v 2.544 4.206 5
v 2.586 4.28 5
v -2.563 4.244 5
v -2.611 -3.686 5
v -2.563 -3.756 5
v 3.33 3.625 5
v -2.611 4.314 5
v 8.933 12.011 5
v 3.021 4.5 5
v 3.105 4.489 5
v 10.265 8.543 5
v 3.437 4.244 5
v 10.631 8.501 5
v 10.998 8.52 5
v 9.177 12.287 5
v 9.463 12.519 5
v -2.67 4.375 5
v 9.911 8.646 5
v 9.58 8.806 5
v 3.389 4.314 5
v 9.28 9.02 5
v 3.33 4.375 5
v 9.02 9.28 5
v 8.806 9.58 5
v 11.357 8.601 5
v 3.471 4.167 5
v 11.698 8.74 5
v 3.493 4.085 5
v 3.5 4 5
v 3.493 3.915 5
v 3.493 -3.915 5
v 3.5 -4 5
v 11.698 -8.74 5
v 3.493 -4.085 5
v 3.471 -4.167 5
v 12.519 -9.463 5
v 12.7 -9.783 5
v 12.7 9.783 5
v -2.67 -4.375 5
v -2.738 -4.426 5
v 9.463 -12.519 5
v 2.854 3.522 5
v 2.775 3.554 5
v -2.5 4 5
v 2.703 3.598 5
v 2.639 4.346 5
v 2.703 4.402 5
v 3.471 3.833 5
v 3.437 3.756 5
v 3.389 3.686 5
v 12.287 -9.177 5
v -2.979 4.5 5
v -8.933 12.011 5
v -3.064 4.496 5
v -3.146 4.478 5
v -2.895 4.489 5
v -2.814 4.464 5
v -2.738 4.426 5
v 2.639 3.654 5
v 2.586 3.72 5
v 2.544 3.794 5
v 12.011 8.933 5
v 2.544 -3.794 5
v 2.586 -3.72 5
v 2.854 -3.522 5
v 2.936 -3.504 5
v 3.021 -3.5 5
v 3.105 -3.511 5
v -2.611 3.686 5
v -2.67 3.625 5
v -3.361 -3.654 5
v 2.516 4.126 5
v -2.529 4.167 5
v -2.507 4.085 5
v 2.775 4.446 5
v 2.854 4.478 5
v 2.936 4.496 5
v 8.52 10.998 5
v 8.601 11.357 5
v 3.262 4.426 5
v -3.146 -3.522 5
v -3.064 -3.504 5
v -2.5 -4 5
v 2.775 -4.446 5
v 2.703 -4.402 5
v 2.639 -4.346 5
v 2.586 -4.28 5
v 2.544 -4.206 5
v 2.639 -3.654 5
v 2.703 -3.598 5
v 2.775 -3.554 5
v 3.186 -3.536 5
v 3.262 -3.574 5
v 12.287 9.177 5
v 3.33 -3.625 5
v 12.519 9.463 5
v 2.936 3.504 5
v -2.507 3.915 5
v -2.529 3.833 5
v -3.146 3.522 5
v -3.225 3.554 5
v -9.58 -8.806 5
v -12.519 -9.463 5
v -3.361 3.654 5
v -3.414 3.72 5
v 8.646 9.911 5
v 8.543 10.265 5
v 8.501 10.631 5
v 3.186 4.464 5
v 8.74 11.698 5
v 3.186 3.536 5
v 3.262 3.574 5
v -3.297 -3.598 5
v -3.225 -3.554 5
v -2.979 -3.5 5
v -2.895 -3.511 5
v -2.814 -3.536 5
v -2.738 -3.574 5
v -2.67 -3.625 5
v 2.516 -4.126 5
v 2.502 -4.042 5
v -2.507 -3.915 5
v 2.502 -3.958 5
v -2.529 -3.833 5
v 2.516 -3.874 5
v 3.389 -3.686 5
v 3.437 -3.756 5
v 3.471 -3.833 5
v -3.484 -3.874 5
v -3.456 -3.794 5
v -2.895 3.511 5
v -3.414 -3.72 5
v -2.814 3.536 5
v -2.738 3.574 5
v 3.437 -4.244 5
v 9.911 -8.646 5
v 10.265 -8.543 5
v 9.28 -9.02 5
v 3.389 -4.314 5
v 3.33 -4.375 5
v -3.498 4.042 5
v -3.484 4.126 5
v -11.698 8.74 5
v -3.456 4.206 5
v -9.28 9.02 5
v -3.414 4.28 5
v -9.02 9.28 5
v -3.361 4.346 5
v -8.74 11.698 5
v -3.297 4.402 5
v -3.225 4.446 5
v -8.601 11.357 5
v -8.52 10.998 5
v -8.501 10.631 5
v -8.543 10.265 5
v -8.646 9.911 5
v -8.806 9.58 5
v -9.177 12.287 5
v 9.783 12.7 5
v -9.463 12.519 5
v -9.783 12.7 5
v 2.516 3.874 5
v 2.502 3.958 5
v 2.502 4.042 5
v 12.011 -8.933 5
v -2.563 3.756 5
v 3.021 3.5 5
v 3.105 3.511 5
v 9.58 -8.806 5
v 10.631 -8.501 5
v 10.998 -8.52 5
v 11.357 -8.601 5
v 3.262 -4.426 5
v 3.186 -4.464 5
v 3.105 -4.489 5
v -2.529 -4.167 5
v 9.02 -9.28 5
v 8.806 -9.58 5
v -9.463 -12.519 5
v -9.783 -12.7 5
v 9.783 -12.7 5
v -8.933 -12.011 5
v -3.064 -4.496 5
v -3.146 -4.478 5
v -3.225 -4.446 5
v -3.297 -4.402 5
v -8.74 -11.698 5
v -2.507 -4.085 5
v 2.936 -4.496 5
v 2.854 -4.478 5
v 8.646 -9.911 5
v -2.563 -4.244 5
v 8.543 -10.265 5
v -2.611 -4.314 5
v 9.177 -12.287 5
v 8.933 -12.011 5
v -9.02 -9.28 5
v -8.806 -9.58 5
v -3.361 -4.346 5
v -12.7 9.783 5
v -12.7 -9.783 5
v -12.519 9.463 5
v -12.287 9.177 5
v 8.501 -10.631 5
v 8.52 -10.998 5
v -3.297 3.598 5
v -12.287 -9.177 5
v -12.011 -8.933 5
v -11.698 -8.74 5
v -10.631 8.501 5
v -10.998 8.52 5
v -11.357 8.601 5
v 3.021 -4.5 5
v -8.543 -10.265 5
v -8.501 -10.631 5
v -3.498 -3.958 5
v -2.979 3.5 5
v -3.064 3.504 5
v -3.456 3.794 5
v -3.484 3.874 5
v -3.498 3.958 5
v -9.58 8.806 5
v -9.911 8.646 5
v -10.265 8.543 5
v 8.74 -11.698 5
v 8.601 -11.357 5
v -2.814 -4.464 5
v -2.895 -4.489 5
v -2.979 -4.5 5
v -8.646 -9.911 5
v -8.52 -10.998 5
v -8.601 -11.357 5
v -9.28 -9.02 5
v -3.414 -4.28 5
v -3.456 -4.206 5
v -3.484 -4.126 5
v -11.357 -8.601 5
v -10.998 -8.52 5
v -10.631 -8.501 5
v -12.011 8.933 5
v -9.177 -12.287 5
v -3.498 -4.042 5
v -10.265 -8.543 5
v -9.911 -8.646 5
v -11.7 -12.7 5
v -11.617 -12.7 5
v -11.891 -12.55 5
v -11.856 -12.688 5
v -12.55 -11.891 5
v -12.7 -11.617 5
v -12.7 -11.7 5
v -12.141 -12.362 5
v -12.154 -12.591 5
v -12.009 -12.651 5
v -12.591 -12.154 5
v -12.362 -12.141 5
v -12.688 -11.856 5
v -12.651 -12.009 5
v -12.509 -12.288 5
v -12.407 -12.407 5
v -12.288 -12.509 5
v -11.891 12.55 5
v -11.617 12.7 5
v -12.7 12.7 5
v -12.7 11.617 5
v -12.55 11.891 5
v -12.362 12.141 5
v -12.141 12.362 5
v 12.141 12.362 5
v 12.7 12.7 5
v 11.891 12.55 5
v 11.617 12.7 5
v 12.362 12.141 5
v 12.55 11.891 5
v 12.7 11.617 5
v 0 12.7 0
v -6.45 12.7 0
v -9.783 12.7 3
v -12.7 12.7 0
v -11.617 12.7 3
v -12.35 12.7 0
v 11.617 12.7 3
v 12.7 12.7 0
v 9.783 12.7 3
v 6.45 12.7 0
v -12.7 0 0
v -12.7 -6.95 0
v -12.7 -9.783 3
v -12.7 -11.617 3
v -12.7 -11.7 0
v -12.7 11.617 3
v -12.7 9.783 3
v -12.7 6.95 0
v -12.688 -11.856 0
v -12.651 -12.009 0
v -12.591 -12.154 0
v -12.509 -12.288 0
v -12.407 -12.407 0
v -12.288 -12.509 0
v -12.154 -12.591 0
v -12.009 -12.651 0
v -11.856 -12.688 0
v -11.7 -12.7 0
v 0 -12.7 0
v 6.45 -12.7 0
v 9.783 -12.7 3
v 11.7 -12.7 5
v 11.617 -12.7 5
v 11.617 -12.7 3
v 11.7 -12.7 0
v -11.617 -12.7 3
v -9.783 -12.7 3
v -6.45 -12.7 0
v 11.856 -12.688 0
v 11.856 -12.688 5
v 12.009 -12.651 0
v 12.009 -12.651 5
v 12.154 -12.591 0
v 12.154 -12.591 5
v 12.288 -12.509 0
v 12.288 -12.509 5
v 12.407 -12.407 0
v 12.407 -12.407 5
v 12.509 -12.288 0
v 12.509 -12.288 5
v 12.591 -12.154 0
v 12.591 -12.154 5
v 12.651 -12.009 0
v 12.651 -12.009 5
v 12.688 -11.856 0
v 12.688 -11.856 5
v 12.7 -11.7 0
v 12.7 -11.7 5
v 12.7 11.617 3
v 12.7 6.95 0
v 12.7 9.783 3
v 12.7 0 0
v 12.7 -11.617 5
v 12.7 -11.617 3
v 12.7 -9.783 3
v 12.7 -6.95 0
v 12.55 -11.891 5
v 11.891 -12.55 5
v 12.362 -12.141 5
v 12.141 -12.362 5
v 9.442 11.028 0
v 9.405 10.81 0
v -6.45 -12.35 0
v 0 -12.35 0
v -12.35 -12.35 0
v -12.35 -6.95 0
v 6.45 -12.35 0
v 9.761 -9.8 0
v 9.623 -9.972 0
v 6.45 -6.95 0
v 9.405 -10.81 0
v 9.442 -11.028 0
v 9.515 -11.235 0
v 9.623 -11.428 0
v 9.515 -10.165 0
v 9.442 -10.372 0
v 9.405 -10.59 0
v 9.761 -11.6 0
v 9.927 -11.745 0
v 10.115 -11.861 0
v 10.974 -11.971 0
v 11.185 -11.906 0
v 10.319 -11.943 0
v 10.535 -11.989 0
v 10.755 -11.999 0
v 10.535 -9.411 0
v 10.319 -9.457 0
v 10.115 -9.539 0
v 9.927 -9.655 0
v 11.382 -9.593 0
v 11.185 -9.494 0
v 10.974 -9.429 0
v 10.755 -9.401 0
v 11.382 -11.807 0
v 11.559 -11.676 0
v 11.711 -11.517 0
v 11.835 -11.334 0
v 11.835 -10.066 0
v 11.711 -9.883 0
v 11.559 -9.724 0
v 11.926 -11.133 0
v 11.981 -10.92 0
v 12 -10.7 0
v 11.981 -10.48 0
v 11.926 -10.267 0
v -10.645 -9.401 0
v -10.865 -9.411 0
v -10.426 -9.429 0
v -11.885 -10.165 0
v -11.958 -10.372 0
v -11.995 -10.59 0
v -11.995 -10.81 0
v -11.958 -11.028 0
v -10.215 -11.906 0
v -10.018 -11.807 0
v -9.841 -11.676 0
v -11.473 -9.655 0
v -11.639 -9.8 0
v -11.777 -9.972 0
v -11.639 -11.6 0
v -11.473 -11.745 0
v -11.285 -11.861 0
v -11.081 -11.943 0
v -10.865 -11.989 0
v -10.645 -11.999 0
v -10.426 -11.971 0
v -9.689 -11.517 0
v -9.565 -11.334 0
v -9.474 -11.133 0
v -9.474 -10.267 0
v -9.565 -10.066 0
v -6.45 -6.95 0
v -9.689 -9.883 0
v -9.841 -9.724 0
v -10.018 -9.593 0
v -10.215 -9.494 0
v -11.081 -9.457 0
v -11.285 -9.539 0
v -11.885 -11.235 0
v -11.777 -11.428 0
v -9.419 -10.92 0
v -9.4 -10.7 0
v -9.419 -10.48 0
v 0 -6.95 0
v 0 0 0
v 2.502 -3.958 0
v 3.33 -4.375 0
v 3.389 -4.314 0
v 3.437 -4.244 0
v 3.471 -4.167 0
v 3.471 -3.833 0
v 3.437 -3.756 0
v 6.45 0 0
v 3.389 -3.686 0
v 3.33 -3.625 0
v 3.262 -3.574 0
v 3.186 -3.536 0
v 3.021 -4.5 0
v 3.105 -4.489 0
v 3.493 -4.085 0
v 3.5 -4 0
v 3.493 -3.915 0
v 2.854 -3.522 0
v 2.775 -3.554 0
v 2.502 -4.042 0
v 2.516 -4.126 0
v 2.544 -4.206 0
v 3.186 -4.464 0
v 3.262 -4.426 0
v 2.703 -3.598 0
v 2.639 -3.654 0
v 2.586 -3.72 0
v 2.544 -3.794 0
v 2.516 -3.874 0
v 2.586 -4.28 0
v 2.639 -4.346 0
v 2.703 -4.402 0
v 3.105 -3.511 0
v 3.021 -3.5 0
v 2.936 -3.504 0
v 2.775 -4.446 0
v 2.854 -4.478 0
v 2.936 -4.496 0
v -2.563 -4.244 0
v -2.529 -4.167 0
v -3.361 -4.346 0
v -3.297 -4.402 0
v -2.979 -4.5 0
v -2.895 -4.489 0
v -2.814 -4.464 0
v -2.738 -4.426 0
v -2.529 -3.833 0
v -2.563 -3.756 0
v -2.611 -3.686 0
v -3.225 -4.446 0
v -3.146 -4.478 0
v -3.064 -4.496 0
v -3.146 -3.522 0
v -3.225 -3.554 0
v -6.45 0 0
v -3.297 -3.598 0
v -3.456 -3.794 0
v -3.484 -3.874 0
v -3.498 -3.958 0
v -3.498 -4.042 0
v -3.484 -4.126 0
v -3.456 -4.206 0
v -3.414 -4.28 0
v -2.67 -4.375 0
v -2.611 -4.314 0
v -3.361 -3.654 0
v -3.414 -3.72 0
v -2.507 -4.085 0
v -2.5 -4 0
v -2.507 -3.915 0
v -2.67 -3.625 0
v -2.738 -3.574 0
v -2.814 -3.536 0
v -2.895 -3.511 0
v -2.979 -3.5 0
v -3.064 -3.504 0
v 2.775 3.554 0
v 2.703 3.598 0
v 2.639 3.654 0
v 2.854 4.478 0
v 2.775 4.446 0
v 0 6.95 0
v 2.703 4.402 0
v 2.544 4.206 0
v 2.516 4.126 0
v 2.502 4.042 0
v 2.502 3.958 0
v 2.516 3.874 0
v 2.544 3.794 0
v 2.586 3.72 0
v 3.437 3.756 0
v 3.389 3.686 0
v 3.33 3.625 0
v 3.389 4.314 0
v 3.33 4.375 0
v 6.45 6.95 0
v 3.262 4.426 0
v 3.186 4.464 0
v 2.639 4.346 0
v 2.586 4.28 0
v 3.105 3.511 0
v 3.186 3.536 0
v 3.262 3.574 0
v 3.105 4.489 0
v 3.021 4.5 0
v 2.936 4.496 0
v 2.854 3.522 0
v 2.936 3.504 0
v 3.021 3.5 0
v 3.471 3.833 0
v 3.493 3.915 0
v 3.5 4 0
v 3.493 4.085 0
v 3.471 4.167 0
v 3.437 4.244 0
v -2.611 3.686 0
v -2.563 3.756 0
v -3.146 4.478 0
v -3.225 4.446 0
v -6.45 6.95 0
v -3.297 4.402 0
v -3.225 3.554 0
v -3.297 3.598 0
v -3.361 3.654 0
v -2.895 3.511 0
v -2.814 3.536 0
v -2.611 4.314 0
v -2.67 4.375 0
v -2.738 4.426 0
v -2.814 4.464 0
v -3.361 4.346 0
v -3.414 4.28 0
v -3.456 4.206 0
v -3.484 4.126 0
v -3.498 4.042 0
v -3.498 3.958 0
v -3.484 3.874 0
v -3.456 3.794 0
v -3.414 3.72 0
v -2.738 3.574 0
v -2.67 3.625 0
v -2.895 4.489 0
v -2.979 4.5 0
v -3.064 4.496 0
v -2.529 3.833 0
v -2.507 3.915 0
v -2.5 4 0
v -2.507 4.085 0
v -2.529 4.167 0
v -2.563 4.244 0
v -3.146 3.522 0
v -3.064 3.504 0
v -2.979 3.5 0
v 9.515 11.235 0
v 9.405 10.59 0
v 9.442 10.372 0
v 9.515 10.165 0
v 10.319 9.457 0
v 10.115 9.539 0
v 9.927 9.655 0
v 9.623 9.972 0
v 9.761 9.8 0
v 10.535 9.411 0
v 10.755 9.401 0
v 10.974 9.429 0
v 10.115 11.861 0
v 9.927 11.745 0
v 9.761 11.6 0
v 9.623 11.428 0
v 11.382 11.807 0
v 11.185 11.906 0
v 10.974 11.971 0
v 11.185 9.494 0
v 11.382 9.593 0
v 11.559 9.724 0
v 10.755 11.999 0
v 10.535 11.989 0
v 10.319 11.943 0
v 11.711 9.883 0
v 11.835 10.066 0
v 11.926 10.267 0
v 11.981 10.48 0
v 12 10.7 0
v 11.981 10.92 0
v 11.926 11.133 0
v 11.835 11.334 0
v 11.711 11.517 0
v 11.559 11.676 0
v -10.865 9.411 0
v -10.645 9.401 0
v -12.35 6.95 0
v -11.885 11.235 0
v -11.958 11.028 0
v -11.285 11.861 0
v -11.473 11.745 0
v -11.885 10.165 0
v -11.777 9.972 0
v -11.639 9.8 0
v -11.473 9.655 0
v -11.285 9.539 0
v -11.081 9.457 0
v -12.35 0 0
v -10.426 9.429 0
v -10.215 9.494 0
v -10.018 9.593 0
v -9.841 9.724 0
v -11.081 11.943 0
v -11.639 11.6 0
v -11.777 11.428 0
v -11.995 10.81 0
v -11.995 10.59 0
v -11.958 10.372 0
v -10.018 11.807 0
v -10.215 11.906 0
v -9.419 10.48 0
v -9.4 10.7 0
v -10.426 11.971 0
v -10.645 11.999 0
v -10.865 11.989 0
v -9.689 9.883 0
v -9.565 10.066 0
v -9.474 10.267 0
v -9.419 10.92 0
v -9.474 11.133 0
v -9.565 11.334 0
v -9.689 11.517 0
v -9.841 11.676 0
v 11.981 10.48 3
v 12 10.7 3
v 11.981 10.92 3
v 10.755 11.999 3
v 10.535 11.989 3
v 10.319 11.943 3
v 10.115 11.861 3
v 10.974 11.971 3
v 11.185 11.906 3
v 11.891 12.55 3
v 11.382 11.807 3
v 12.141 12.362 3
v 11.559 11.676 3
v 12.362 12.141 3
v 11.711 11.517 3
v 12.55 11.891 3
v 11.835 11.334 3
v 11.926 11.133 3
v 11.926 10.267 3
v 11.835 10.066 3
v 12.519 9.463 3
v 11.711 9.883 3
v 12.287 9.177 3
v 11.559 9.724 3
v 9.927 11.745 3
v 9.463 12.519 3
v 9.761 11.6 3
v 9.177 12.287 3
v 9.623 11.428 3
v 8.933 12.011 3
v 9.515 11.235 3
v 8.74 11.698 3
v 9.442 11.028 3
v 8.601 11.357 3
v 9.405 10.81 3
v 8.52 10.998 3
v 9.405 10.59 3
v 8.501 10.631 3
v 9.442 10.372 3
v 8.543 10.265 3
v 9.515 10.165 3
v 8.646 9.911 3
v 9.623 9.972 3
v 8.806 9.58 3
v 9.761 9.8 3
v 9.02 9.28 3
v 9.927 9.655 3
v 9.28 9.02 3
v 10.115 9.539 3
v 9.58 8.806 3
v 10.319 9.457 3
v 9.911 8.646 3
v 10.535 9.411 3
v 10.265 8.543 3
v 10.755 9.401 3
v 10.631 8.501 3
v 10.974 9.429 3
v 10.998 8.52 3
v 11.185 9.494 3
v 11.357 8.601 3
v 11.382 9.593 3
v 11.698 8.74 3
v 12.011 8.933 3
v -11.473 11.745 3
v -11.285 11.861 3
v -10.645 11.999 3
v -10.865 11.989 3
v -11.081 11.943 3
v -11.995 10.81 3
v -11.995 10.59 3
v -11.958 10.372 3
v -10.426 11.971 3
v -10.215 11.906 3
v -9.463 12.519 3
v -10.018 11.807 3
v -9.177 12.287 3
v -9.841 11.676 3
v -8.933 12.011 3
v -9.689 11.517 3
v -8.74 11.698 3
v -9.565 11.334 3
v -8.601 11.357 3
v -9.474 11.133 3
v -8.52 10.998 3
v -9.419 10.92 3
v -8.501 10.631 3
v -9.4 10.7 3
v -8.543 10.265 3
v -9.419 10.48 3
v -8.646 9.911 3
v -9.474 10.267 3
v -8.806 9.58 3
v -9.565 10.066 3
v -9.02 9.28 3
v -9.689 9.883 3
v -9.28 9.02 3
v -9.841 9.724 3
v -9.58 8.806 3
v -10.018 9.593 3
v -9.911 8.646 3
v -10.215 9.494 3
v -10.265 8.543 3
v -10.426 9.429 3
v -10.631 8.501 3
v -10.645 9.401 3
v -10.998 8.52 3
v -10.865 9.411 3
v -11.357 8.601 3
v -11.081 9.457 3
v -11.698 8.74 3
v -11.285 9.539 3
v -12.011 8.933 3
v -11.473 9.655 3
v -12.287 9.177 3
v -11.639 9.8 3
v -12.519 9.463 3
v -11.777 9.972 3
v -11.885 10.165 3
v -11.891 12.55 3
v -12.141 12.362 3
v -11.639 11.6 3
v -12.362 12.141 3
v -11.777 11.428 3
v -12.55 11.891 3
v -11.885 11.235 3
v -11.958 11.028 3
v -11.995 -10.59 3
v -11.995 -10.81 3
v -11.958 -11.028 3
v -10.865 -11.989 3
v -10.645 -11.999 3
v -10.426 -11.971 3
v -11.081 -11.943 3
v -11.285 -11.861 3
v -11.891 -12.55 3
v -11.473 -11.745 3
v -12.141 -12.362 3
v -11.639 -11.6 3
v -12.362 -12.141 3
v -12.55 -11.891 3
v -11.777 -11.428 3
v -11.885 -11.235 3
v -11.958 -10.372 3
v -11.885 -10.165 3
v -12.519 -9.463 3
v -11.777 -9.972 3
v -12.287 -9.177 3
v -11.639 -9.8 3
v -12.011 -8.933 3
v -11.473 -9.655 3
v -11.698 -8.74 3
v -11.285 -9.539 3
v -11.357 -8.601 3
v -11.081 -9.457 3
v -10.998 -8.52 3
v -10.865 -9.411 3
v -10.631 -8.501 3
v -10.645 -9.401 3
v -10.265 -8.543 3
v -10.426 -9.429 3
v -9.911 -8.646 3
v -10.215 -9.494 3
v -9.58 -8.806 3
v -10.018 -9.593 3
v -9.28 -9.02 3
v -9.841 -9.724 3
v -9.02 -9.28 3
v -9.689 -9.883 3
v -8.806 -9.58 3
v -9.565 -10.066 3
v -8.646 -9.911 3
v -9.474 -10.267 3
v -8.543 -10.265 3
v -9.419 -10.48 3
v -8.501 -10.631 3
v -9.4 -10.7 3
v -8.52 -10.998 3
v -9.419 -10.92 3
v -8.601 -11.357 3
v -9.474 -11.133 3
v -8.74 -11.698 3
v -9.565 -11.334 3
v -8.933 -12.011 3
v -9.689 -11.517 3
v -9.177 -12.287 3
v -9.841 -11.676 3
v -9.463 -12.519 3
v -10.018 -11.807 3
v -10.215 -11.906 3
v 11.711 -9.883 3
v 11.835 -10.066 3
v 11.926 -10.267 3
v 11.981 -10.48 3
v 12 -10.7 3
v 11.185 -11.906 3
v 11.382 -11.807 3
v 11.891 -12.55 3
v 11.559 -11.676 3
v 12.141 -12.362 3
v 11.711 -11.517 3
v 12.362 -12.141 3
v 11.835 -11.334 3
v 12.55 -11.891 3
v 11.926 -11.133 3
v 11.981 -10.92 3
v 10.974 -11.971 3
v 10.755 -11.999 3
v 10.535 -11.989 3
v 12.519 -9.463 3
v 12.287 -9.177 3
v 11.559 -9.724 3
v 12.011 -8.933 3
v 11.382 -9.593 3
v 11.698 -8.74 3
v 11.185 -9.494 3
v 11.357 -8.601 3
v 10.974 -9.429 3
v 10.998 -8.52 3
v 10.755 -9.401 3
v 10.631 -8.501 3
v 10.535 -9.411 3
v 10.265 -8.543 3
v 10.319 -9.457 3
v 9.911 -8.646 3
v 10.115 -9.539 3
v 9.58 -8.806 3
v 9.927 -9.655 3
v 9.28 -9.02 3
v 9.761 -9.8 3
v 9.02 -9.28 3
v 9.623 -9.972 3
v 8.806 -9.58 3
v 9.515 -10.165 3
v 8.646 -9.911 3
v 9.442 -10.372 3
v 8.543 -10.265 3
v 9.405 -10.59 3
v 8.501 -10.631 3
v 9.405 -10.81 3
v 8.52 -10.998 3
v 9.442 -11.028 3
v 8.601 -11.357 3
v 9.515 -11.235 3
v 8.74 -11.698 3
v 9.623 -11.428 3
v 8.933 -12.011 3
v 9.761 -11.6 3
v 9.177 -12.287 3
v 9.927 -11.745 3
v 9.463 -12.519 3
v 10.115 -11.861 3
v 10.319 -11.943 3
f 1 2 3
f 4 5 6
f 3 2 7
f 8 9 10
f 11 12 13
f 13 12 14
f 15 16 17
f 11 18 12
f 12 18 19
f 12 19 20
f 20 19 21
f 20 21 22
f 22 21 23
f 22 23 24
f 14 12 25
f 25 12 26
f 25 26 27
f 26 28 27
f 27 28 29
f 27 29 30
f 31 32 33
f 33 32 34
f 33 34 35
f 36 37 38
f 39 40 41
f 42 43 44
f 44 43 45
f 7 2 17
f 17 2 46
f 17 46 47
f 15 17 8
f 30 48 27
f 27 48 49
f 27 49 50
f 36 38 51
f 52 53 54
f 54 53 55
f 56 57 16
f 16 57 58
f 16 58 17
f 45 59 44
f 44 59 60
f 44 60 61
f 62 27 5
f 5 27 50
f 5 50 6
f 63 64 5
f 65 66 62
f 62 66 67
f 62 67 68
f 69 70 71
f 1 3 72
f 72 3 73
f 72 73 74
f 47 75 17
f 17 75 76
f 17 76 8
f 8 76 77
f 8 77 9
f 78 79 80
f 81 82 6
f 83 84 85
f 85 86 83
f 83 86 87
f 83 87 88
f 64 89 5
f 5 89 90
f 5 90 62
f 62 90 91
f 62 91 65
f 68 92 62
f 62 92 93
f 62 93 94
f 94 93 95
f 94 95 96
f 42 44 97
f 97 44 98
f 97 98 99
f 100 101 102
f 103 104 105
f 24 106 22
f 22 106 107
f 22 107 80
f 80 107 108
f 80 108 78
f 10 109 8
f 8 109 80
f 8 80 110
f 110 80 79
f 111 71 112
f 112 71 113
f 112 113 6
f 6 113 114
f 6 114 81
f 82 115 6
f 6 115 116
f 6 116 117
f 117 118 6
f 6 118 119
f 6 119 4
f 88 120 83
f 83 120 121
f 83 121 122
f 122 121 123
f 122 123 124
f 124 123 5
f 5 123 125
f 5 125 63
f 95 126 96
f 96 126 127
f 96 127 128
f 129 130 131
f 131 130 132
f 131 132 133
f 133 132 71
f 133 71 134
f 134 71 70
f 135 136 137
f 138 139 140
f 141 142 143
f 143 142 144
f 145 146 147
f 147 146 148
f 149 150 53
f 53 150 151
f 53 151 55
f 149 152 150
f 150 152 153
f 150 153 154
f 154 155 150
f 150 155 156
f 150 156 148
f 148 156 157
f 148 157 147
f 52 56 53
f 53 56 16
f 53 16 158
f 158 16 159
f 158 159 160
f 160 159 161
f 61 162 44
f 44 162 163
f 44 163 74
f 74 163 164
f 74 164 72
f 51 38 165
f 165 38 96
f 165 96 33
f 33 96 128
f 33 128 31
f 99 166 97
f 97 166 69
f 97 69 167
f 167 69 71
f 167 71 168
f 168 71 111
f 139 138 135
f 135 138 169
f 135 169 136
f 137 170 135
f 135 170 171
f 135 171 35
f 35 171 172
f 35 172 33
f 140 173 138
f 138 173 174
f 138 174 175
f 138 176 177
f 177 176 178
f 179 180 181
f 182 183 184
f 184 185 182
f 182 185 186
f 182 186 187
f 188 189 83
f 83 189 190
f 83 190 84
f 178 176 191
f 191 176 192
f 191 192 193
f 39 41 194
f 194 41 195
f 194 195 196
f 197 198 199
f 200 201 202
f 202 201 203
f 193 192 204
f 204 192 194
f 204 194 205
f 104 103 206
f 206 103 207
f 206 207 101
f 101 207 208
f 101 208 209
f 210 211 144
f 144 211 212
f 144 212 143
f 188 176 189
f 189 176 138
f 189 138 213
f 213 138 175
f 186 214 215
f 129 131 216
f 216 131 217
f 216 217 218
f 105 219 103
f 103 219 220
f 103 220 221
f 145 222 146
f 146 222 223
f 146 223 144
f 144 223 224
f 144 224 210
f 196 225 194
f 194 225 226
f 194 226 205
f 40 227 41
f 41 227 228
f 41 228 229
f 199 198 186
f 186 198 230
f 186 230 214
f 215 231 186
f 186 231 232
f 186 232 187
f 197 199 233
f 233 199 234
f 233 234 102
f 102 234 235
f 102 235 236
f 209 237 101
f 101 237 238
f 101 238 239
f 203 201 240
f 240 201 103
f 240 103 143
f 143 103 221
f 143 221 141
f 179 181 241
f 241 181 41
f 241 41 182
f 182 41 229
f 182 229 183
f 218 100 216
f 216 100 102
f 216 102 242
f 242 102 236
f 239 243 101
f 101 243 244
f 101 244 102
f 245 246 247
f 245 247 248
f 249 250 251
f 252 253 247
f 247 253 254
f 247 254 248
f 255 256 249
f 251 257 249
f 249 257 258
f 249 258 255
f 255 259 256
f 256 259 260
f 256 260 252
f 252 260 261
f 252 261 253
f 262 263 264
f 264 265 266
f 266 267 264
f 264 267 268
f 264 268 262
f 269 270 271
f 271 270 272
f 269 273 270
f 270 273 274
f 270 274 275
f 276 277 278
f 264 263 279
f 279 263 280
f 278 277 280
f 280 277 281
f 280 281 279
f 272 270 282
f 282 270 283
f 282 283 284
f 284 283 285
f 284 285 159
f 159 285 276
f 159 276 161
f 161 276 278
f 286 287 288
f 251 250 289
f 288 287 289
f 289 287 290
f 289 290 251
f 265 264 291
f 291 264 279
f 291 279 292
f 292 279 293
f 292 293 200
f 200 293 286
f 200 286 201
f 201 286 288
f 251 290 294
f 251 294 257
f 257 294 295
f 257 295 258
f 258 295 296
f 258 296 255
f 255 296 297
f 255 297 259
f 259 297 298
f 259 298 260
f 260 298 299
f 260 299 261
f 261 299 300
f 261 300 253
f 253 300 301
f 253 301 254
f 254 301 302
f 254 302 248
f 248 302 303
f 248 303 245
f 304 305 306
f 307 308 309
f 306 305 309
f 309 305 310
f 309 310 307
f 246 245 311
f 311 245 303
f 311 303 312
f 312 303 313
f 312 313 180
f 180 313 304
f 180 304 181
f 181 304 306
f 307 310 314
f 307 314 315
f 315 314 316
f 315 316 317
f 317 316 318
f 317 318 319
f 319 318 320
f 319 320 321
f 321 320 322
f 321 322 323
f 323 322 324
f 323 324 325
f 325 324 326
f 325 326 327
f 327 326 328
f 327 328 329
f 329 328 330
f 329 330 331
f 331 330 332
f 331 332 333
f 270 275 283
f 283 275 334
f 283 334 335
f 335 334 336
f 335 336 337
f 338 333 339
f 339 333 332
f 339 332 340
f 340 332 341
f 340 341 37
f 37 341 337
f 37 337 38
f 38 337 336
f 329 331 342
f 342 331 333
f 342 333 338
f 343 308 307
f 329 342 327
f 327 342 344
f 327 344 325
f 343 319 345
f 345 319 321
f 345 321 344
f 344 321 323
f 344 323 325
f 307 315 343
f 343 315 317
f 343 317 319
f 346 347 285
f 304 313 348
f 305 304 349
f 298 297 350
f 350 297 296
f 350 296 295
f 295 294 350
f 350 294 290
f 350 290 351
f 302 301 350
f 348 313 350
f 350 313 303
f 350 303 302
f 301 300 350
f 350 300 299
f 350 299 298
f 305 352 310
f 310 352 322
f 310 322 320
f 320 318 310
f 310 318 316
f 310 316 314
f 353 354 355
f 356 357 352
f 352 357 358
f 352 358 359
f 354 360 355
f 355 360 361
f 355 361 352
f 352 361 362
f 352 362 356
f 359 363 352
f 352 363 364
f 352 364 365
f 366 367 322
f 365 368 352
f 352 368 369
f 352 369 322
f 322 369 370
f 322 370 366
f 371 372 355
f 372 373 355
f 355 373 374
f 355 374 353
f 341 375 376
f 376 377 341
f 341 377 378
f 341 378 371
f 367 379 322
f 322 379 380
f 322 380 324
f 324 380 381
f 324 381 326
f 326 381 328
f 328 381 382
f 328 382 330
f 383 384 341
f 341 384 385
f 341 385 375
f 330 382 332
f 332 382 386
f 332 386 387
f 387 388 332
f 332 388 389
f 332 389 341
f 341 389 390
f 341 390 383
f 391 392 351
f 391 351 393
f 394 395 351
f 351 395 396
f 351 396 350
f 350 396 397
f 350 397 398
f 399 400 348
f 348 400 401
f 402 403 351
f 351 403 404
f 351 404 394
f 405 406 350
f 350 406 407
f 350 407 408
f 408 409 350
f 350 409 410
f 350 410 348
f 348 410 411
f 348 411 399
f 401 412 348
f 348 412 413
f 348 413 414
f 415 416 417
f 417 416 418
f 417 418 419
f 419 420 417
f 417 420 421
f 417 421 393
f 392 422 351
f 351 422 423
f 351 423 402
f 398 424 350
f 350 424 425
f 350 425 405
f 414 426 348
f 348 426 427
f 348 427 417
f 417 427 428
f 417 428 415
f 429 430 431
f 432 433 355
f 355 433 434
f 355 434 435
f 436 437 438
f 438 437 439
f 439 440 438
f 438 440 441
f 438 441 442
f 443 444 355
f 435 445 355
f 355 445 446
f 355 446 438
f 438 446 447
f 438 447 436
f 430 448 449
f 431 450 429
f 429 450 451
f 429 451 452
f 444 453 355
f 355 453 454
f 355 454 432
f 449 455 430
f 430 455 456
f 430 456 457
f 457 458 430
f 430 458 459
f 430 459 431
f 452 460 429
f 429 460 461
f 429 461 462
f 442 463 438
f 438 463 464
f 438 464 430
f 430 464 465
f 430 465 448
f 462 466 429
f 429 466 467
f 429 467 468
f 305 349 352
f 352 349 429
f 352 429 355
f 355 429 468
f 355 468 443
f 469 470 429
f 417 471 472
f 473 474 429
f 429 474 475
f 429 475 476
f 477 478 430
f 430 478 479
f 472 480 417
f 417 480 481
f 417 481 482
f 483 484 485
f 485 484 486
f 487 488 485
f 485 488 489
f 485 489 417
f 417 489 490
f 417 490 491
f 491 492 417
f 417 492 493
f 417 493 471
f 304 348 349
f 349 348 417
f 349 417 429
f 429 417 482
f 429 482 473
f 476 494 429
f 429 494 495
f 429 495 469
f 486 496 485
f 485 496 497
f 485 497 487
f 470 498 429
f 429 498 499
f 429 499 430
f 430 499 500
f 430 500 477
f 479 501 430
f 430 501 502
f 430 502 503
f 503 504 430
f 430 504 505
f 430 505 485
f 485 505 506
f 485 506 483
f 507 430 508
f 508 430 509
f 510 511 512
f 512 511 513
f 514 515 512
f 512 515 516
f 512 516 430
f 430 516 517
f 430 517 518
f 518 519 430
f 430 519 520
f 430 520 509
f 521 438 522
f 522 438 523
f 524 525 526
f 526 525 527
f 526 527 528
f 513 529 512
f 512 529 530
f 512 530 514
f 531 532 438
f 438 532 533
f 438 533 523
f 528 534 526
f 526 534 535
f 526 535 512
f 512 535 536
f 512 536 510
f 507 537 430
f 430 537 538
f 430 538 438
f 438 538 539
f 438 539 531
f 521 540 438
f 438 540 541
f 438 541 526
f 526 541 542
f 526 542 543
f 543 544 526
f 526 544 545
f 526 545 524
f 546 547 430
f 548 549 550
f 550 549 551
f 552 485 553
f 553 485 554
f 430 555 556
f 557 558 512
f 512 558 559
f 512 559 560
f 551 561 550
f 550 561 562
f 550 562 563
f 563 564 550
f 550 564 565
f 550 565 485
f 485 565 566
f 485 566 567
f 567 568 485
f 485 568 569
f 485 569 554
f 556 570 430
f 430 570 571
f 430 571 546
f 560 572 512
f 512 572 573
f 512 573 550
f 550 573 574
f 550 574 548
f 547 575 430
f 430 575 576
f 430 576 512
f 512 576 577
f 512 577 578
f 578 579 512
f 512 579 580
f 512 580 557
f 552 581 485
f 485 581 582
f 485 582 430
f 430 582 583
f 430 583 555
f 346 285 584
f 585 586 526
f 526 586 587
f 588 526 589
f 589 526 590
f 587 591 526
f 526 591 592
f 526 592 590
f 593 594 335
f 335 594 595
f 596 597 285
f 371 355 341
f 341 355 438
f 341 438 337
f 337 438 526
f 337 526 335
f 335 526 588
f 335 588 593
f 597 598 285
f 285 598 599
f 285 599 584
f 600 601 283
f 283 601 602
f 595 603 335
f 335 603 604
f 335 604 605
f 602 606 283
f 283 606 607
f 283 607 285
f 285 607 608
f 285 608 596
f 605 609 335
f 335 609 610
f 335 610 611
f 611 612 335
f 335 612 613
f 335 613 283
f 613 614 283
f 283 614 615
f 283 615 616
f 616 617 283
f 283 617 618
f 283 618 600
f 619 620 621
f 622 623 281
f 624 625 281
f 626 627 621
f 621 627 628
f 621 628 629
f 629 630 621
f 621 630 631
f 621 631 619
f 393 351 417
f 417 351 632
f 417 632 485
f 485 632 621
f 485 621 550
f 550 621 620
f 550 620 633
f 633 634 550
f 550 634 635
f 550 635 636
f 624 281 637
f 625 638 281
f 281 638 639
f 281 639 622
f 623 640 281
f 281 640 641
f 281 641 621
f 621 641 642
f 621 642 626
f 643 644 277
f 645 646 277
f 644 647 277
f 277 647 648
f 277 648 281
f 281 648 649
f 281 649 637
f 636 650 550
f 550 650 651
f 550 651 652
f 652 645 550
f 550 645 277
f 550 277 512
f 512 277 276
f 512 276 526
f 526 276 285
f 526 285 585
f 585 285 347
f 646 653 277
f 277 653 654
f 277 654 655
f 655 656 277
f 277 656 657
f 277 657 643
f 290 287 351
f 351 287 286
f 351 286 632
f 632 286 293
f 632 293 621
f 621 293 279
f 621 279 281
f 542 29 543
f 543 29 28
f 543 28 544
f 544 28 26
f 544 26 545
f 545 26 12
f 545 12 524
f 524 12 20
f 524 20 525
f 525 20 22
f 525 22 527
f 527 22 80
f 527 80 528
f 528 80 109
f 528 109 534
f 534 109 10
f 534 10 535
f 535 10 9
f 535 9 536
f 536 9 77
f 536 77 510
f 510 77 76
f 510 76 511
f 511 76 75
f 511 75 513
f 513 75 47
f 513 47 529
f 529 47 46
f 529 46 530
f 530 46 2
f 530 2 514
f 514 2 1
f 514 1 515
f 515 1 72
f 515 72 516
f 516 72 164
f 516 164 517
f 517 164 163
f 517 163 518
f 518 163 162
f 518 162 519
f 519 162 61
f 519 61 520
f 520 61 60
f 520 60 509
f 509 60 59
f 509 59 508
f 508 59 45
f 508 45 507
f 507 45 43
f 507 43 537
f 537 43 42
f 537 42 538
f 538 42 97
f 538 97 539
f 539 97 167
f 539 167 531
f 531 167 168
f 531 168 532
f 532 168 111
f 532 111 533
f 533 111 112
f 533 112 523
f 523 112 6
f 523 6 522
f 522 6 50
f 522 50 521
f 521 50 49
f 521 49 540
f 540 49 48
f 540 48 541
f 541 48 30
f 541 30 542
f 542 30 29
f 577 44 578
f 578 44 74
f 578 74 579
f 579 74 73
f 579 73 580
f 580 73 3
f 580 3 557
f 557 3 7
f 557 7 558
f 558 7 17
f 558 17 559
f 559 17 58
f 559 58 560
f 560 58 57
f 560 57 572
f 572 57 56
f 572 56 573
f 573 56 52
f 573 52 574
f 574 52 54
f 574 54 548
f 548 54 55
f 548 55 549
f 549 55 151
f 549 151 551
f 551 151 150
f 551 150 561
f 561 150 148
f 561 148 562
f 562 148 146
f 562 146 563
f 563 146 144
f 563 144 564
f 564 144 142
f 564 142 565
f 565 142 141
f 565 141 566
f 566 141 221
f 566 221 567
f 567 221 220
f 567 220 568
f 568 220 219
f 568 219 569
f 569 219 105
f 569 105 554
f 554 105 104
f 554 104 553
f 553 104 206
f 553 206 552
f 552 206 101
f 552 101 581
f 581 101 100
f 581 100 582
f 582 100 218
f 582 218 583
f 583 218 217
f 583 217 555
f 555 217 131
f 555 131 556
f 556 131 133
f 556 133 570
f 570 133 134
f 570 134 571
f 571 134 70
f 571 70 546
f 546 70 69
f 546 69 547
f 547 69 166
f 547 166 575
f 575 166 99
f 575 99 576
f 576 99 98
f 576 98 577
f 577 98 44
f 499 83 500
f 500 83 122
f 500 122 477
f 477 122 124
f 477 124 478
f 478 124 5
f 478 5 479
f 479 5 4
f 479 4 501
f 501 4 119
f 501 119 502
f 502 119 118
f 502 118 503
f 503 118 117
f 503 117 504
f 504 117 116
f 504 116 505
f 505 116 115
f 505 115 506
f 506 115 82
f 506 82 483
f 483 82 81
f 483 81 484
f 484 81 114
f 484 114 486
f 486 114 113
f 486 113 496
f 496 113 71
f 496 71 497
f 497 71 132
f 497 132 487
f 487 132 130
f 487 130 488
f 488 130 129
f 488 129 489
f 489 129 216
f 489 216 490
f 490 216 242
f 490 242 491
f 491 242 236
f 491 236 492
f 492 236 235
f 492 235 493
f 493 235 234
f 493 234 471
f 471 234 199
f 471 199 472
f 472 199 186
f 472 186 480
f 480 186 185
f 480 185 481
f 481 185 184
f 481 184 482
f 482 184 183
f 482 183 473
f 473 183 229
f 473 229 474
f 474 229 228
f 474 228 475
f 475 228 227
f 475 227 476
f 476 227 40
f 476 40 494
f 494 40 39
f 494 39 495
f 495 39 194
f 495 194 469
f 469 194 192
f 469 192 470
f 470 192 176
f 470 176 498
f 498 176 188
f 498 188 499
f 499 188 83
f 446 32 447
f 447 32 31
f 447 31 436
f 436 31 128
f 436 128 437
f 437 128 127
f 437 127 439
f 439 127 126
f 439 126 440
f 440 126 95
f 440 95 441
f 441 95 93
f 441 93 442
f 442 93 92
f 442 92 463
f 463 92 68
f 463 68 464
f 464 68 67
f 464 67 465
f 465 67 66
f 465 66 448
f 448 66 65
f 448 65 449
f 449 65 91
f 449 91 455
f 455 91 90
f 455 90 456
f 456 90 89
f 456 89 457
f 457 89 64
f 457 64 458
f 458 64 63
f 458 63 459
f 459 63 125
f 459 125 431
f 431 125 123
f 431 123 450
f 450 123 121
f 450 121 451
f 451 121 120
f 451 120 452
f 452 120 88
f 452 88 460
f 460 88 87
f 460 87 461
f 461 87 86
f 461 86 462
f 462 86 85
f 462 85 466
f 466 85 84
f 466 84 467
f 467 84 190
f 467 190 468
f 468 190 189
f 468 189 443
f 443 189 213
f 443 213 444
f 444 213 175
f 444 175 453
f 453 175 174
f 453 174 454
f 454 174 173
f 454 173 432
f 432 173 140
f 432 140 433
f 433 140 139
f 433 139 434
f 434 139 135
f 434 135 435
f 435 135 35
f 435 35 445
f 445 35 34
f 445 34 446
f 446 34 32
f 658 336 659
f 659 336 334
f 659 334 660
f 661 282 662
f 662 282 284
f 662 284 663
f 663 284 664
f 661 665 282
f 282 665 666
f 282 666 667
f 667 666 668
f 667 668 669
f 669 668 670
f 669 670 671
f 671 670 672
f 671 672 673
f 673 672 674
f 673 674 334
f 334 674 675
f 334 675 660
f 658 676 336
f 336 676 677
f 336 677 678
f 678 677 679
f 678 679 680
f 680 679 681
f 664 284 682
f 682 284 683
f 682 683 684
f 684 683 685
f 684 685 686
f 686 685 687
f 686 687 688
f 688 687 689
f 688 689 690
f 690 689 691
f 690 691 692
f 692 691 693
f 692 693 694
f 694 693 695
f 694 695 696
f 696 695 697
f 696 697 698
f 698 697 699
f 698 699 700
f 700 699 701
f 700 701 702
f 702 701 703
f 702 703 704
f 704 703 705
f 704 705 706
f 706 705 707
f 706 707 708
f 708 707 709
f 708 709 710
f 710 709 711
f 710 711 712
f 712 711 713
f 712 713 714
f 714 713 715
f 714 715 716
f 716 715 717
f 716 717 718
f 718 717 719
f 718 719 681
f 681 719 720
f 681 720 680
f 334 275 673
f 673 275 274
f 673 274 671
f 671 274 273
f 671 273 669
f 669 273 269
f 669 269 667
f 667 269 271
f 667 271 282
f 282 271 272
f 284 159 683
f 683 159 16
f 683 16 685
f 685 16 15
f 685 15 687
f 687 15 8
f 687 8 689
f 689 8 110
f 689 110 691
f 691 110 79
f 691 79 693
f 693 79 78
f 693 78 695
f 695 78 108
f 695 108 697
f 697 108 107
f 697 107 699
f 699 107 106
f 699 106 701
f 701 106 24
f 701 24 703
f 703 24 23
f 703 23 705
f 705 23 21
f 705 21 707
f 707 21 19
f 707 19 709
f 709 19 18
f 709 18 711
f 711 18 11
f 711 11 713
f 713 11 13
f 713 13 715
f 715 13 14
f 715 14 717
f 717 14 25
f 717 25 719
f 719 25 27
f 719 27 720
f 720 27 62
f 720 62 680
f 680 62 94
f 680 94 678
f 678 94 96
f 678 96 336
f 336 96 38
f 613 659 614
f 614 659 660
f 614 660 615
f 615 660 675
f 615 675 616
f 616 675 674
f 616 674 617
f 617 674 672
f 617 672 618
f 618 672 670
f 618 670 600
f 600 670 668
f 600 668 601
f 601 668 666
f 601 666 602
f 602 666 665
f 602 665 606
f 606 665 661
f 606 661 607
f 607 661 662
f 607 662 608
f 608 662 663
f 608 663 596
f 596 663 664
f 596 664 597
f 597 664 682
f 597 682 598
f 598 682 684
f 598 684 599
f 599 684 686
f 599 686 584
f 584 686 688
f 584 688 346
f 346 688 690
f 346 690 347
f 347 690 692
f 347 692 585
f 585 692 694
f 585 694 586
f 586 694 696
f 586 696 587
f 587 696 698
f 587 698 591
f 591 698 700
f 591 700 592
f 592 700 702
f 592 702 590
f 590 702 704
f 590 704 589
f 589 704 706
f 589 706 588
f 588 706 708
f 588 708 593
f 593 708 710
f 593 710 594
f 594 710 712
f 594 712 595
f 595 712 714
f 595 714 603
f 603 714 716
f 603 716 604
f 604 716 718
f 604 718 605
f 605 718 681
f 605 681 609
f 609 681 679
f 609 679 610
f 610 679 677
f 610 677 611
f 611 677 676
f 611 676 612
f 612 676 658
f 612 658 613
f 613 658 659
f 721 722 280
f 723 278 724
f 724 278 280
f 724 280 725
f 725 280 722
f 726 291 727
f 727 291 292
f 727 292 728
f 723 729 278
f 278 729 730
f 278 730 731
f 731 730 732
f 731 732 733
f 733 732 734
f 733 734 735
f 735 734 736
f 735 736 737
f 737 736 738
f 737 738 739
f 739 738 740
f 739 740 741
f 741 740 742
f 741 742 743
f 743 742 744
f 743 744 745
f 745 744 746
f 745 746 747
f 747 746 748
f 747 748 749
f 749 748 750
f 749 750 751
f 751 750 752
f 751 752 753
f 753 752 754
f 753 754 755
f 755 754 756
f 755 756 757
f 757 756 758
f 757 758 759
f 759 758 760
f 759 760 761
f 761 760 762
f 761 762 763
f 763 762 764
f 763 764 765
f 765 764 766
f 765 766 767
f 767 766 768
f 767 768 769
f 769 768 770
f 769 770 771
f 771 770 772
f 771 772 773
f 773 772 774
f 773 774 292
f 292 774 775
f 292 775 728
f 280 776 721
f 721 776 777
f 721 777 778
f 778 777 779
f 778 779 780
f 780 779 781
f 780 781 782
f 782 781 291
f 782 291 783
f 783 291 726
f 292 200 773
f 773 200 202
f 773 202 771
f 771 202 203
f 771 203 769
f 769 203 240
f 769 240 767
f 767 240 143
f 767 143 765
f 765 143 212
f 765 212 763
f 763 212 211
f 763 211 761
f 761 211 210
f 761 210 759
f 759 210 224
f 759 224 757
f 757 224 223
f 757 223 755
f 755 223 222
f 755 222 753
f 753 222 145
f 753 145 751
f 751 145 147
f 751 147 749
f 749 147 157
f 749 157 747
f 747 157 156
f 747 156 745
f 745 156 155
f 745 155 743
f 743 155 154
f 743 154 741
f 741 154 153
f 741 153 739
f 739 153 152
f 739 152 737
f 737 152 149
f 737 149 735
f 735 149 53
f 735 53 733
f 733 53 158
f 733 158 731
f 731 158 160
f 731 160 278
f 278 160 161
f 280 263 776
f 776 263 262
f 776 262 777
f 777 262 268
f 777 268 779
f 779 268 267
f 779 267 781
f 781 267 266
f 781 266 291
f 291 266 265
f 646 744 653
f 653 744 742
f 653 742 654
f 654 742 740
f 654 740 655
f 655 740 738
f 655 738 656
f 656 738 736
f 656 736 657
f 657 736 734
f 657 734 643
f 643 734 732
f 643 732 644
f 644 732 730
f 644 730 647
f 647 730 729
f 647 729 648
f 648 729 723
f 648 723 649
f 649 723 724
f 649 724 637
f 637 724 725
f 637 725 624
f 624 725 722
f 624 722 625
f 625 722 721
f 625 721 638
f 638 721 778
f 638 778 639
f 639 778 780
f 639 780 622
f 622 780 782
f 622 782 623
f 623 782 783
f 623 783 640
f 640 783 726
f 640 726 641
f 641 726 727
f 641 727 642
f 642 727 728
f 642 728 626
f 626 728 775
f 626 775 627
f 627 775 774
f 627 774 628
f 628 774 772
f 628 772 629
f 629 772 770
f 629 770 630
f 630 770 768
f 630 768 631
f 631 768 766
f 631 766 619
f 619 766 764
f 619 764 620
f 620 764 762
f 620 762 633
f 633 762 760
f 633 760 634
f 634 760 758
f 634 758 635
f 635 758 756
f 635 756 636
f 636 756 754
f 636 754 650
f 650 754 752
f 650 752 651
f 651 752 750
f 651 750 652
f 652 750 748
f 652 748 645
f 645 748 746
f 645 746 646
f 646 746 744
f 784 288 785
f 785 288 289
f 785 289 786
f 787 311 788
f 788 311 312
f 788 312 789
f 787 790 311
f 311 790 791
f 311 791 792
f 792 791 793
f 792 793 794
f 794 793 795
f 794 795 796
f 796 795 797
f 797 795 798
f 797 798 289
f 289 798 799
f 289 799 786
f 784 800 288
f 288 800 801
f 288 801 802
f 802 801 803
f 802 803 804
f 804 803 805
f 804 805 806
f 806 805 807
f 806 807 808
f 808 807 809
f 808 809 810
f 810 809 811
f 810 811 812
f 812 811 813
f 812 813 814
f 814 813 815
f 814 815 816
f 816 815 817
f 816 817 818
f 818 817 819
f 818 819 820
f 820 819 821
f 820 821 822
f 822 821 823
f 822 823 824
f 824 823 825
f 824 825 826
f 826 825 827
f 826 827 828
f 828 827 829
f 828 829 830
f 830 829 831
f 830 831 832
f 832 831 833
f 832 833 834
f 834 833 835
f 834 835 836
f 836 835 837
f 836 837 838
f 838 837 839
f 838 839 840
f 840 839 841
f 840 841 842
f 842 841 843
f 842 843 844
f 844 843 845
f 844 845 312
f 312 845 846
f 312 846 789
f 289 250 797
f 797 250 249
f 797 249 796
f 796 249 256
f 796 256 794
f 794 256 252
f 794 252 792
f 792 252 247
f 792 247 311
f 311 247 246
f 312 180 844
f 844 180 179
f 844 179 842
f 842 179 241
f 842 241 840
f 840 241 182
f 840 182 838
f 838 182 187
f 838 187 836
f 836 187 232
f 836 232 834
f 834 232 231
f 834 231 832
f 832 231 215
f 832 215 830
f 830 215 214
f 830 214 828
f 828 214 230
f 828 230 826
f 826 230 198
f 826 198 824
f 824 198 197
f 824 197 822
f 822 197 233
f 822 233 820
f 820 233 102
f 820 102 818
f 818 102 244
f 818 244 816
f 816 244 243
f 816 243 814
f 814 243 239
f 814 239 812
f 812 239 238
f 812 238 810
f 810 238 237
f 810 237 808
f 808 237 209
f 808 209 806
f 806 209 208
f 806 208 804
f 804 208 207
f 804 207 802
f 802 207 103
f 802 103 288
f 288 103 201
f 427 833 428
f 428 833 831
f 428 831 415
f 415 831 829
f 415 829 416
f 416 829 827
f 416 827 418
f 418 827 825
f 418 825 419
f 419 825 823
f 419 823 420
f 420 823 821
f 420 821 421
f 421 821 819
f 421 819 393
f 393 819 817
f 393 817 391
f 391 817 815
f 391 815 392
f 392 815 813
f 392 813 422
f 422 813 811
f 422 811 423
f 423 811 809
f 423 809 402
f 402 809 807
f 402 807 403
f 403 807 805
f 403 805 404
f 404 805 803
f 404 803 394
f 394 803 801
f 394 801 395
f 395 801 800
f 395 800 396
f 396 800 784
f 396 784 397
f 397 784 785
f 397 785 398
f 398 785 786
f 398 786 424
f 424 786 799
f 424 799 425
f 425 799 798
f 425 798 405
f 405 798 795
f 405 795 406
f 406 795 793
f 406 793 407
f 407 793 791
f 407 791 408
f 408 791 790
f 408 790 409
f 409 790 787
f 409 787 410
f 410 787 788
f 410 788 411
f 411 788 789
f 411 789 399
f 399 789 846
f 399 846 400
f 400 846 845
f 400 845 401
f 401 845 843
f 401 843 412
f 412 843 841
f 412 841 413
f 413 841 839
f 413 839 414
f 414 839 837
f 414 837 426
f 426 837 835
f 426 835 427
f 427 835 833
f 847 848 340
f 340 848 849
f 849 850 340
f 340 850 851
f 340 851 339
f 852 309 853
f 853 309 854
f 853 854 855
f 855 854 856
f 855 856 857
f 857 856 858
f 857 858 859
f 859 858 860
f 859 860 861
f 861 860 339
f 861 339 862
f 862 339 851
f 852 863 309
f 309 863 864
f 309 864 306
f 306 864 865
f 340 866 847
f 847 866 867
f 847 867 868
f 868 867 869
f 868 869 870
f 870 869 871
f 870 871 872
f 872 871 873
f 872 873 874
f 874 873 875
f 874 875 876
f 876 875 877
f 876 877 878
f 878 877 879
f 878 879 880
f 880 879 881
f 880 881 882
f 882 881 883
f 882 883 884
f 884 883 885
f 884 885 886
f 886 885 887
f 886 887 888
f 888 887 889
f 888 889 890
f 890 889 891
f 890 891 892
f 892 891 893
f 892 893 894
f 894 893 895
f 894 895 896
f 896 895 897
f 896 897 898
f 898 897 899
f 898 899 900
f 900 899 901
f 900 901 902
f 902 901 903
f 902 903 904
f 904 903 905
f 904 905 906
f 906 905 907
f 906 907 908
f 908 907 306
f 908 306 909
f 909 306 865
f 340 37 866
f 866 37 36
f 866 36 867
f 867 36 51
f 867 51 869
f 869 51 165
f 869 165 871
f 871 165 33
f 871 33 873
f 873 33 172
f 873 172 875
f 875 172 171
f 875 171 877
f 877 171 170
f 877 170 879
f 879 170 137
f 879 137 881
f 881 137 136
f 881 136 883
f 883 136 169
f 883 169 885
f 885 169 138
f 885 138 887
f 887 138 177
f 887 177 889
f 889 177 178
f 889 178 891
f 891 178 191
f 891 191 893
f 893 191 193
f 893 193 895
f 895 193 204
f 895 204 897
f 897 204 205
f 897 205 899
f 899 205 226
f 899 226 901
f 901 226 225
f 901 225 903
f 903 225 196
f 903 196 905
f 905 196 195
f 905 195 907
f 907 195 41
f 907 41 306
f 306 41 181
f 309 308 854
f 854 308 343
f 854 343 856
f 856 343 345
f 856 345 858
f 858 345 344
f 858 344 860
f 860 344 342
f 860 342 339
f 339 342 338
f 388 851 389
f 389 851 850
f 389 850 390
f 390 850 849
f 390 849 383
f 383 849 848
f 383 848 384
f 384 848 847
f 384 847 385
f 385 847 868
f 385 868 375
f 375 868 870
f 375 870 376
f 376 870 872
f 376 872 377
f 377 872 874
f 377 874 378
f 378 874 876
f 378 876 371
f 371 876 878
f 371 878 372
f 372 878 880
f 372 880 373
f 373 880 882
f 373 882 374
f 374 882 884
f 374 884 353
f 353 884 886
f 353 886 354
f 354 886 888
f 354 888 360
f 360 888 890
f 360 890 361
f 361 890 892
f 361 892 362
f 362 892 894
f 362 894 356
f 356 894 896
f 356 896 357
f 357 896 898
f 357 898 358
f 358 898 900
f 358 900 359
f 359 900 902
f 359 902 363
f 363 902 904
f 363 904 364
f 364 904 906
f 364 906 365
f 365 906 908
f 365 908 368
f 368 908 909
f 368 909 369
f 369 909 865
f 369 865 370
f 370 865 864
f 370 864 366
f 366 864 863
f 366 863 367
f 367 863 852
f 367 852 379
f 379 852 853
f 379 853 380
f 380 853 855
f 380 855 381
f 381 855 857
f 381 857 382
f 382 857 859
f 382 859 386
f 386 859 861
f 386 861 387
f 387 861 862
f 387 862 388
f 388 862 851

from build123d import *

# Parameters (mm, degrees)
BOSS_EXTRUDE1_DEPTH            = 5
F_1_0MM_DOWEL_HOLE1_D          = 1
CBORE_FOR_M2_SHCS1_D           = 2.6
CBORE_FOR_M2_SHCS1_CBORE_D     = 4.4
CBORE_FOR_M2_SHCS1_CBORE_DEPTH = 2


with BuildPart() as part:
    # Sketch1 → Boss-Extrude1 (new body)
    with BuildSketch(Plane.XY):
        with BuildLine():
            Line((-12.7, 12.7), (-12.7, -11.7))
            ThreePointArc((-12.7, -11.7), (-12.407106781, -12.407106781), (-11.7, -12.7))
            Line((-11.7, -12.7), (11.7, -12.7))
            ThreePointArc((11.7, -12.7), (12.407106781, -12.407106781), (12.7, -11.7))
            Line((12.7, -11.7), (12.7, 12.7))
            Line((12.7, 12.7), (-12.7, 12.7))
        make_face()
    extrude(amount=BOSS_EXTRUDE1_DEPTH)

    # Ø1.0mm Dowel Hole1 (through all)
    with Locations(Plane.XY.offset(5)):
        with Locations((3, -4), (-3, -4), (-3, 4), (3, 4)):
            Hole(F_1_0MM_DOWEL_HOLE1_D / 2)

    # CBORE for M2 SHCS1 (through all)
    with Locations(Plane.XY.offset(5)):
        with Locations((10.7, -10.7), (-10.7, -10.7), (-10.7, 10.7), (10.7, 10.7)):
            CounterBoreHole(CBORE_FOR_M2_SHCS1_D / 2, CBORE_FOR_M2_SHCS1_CBORE_D / 2, CBORE_FOR_M2_SHCS1_CBORE_DEPTH)


solid = part.part
